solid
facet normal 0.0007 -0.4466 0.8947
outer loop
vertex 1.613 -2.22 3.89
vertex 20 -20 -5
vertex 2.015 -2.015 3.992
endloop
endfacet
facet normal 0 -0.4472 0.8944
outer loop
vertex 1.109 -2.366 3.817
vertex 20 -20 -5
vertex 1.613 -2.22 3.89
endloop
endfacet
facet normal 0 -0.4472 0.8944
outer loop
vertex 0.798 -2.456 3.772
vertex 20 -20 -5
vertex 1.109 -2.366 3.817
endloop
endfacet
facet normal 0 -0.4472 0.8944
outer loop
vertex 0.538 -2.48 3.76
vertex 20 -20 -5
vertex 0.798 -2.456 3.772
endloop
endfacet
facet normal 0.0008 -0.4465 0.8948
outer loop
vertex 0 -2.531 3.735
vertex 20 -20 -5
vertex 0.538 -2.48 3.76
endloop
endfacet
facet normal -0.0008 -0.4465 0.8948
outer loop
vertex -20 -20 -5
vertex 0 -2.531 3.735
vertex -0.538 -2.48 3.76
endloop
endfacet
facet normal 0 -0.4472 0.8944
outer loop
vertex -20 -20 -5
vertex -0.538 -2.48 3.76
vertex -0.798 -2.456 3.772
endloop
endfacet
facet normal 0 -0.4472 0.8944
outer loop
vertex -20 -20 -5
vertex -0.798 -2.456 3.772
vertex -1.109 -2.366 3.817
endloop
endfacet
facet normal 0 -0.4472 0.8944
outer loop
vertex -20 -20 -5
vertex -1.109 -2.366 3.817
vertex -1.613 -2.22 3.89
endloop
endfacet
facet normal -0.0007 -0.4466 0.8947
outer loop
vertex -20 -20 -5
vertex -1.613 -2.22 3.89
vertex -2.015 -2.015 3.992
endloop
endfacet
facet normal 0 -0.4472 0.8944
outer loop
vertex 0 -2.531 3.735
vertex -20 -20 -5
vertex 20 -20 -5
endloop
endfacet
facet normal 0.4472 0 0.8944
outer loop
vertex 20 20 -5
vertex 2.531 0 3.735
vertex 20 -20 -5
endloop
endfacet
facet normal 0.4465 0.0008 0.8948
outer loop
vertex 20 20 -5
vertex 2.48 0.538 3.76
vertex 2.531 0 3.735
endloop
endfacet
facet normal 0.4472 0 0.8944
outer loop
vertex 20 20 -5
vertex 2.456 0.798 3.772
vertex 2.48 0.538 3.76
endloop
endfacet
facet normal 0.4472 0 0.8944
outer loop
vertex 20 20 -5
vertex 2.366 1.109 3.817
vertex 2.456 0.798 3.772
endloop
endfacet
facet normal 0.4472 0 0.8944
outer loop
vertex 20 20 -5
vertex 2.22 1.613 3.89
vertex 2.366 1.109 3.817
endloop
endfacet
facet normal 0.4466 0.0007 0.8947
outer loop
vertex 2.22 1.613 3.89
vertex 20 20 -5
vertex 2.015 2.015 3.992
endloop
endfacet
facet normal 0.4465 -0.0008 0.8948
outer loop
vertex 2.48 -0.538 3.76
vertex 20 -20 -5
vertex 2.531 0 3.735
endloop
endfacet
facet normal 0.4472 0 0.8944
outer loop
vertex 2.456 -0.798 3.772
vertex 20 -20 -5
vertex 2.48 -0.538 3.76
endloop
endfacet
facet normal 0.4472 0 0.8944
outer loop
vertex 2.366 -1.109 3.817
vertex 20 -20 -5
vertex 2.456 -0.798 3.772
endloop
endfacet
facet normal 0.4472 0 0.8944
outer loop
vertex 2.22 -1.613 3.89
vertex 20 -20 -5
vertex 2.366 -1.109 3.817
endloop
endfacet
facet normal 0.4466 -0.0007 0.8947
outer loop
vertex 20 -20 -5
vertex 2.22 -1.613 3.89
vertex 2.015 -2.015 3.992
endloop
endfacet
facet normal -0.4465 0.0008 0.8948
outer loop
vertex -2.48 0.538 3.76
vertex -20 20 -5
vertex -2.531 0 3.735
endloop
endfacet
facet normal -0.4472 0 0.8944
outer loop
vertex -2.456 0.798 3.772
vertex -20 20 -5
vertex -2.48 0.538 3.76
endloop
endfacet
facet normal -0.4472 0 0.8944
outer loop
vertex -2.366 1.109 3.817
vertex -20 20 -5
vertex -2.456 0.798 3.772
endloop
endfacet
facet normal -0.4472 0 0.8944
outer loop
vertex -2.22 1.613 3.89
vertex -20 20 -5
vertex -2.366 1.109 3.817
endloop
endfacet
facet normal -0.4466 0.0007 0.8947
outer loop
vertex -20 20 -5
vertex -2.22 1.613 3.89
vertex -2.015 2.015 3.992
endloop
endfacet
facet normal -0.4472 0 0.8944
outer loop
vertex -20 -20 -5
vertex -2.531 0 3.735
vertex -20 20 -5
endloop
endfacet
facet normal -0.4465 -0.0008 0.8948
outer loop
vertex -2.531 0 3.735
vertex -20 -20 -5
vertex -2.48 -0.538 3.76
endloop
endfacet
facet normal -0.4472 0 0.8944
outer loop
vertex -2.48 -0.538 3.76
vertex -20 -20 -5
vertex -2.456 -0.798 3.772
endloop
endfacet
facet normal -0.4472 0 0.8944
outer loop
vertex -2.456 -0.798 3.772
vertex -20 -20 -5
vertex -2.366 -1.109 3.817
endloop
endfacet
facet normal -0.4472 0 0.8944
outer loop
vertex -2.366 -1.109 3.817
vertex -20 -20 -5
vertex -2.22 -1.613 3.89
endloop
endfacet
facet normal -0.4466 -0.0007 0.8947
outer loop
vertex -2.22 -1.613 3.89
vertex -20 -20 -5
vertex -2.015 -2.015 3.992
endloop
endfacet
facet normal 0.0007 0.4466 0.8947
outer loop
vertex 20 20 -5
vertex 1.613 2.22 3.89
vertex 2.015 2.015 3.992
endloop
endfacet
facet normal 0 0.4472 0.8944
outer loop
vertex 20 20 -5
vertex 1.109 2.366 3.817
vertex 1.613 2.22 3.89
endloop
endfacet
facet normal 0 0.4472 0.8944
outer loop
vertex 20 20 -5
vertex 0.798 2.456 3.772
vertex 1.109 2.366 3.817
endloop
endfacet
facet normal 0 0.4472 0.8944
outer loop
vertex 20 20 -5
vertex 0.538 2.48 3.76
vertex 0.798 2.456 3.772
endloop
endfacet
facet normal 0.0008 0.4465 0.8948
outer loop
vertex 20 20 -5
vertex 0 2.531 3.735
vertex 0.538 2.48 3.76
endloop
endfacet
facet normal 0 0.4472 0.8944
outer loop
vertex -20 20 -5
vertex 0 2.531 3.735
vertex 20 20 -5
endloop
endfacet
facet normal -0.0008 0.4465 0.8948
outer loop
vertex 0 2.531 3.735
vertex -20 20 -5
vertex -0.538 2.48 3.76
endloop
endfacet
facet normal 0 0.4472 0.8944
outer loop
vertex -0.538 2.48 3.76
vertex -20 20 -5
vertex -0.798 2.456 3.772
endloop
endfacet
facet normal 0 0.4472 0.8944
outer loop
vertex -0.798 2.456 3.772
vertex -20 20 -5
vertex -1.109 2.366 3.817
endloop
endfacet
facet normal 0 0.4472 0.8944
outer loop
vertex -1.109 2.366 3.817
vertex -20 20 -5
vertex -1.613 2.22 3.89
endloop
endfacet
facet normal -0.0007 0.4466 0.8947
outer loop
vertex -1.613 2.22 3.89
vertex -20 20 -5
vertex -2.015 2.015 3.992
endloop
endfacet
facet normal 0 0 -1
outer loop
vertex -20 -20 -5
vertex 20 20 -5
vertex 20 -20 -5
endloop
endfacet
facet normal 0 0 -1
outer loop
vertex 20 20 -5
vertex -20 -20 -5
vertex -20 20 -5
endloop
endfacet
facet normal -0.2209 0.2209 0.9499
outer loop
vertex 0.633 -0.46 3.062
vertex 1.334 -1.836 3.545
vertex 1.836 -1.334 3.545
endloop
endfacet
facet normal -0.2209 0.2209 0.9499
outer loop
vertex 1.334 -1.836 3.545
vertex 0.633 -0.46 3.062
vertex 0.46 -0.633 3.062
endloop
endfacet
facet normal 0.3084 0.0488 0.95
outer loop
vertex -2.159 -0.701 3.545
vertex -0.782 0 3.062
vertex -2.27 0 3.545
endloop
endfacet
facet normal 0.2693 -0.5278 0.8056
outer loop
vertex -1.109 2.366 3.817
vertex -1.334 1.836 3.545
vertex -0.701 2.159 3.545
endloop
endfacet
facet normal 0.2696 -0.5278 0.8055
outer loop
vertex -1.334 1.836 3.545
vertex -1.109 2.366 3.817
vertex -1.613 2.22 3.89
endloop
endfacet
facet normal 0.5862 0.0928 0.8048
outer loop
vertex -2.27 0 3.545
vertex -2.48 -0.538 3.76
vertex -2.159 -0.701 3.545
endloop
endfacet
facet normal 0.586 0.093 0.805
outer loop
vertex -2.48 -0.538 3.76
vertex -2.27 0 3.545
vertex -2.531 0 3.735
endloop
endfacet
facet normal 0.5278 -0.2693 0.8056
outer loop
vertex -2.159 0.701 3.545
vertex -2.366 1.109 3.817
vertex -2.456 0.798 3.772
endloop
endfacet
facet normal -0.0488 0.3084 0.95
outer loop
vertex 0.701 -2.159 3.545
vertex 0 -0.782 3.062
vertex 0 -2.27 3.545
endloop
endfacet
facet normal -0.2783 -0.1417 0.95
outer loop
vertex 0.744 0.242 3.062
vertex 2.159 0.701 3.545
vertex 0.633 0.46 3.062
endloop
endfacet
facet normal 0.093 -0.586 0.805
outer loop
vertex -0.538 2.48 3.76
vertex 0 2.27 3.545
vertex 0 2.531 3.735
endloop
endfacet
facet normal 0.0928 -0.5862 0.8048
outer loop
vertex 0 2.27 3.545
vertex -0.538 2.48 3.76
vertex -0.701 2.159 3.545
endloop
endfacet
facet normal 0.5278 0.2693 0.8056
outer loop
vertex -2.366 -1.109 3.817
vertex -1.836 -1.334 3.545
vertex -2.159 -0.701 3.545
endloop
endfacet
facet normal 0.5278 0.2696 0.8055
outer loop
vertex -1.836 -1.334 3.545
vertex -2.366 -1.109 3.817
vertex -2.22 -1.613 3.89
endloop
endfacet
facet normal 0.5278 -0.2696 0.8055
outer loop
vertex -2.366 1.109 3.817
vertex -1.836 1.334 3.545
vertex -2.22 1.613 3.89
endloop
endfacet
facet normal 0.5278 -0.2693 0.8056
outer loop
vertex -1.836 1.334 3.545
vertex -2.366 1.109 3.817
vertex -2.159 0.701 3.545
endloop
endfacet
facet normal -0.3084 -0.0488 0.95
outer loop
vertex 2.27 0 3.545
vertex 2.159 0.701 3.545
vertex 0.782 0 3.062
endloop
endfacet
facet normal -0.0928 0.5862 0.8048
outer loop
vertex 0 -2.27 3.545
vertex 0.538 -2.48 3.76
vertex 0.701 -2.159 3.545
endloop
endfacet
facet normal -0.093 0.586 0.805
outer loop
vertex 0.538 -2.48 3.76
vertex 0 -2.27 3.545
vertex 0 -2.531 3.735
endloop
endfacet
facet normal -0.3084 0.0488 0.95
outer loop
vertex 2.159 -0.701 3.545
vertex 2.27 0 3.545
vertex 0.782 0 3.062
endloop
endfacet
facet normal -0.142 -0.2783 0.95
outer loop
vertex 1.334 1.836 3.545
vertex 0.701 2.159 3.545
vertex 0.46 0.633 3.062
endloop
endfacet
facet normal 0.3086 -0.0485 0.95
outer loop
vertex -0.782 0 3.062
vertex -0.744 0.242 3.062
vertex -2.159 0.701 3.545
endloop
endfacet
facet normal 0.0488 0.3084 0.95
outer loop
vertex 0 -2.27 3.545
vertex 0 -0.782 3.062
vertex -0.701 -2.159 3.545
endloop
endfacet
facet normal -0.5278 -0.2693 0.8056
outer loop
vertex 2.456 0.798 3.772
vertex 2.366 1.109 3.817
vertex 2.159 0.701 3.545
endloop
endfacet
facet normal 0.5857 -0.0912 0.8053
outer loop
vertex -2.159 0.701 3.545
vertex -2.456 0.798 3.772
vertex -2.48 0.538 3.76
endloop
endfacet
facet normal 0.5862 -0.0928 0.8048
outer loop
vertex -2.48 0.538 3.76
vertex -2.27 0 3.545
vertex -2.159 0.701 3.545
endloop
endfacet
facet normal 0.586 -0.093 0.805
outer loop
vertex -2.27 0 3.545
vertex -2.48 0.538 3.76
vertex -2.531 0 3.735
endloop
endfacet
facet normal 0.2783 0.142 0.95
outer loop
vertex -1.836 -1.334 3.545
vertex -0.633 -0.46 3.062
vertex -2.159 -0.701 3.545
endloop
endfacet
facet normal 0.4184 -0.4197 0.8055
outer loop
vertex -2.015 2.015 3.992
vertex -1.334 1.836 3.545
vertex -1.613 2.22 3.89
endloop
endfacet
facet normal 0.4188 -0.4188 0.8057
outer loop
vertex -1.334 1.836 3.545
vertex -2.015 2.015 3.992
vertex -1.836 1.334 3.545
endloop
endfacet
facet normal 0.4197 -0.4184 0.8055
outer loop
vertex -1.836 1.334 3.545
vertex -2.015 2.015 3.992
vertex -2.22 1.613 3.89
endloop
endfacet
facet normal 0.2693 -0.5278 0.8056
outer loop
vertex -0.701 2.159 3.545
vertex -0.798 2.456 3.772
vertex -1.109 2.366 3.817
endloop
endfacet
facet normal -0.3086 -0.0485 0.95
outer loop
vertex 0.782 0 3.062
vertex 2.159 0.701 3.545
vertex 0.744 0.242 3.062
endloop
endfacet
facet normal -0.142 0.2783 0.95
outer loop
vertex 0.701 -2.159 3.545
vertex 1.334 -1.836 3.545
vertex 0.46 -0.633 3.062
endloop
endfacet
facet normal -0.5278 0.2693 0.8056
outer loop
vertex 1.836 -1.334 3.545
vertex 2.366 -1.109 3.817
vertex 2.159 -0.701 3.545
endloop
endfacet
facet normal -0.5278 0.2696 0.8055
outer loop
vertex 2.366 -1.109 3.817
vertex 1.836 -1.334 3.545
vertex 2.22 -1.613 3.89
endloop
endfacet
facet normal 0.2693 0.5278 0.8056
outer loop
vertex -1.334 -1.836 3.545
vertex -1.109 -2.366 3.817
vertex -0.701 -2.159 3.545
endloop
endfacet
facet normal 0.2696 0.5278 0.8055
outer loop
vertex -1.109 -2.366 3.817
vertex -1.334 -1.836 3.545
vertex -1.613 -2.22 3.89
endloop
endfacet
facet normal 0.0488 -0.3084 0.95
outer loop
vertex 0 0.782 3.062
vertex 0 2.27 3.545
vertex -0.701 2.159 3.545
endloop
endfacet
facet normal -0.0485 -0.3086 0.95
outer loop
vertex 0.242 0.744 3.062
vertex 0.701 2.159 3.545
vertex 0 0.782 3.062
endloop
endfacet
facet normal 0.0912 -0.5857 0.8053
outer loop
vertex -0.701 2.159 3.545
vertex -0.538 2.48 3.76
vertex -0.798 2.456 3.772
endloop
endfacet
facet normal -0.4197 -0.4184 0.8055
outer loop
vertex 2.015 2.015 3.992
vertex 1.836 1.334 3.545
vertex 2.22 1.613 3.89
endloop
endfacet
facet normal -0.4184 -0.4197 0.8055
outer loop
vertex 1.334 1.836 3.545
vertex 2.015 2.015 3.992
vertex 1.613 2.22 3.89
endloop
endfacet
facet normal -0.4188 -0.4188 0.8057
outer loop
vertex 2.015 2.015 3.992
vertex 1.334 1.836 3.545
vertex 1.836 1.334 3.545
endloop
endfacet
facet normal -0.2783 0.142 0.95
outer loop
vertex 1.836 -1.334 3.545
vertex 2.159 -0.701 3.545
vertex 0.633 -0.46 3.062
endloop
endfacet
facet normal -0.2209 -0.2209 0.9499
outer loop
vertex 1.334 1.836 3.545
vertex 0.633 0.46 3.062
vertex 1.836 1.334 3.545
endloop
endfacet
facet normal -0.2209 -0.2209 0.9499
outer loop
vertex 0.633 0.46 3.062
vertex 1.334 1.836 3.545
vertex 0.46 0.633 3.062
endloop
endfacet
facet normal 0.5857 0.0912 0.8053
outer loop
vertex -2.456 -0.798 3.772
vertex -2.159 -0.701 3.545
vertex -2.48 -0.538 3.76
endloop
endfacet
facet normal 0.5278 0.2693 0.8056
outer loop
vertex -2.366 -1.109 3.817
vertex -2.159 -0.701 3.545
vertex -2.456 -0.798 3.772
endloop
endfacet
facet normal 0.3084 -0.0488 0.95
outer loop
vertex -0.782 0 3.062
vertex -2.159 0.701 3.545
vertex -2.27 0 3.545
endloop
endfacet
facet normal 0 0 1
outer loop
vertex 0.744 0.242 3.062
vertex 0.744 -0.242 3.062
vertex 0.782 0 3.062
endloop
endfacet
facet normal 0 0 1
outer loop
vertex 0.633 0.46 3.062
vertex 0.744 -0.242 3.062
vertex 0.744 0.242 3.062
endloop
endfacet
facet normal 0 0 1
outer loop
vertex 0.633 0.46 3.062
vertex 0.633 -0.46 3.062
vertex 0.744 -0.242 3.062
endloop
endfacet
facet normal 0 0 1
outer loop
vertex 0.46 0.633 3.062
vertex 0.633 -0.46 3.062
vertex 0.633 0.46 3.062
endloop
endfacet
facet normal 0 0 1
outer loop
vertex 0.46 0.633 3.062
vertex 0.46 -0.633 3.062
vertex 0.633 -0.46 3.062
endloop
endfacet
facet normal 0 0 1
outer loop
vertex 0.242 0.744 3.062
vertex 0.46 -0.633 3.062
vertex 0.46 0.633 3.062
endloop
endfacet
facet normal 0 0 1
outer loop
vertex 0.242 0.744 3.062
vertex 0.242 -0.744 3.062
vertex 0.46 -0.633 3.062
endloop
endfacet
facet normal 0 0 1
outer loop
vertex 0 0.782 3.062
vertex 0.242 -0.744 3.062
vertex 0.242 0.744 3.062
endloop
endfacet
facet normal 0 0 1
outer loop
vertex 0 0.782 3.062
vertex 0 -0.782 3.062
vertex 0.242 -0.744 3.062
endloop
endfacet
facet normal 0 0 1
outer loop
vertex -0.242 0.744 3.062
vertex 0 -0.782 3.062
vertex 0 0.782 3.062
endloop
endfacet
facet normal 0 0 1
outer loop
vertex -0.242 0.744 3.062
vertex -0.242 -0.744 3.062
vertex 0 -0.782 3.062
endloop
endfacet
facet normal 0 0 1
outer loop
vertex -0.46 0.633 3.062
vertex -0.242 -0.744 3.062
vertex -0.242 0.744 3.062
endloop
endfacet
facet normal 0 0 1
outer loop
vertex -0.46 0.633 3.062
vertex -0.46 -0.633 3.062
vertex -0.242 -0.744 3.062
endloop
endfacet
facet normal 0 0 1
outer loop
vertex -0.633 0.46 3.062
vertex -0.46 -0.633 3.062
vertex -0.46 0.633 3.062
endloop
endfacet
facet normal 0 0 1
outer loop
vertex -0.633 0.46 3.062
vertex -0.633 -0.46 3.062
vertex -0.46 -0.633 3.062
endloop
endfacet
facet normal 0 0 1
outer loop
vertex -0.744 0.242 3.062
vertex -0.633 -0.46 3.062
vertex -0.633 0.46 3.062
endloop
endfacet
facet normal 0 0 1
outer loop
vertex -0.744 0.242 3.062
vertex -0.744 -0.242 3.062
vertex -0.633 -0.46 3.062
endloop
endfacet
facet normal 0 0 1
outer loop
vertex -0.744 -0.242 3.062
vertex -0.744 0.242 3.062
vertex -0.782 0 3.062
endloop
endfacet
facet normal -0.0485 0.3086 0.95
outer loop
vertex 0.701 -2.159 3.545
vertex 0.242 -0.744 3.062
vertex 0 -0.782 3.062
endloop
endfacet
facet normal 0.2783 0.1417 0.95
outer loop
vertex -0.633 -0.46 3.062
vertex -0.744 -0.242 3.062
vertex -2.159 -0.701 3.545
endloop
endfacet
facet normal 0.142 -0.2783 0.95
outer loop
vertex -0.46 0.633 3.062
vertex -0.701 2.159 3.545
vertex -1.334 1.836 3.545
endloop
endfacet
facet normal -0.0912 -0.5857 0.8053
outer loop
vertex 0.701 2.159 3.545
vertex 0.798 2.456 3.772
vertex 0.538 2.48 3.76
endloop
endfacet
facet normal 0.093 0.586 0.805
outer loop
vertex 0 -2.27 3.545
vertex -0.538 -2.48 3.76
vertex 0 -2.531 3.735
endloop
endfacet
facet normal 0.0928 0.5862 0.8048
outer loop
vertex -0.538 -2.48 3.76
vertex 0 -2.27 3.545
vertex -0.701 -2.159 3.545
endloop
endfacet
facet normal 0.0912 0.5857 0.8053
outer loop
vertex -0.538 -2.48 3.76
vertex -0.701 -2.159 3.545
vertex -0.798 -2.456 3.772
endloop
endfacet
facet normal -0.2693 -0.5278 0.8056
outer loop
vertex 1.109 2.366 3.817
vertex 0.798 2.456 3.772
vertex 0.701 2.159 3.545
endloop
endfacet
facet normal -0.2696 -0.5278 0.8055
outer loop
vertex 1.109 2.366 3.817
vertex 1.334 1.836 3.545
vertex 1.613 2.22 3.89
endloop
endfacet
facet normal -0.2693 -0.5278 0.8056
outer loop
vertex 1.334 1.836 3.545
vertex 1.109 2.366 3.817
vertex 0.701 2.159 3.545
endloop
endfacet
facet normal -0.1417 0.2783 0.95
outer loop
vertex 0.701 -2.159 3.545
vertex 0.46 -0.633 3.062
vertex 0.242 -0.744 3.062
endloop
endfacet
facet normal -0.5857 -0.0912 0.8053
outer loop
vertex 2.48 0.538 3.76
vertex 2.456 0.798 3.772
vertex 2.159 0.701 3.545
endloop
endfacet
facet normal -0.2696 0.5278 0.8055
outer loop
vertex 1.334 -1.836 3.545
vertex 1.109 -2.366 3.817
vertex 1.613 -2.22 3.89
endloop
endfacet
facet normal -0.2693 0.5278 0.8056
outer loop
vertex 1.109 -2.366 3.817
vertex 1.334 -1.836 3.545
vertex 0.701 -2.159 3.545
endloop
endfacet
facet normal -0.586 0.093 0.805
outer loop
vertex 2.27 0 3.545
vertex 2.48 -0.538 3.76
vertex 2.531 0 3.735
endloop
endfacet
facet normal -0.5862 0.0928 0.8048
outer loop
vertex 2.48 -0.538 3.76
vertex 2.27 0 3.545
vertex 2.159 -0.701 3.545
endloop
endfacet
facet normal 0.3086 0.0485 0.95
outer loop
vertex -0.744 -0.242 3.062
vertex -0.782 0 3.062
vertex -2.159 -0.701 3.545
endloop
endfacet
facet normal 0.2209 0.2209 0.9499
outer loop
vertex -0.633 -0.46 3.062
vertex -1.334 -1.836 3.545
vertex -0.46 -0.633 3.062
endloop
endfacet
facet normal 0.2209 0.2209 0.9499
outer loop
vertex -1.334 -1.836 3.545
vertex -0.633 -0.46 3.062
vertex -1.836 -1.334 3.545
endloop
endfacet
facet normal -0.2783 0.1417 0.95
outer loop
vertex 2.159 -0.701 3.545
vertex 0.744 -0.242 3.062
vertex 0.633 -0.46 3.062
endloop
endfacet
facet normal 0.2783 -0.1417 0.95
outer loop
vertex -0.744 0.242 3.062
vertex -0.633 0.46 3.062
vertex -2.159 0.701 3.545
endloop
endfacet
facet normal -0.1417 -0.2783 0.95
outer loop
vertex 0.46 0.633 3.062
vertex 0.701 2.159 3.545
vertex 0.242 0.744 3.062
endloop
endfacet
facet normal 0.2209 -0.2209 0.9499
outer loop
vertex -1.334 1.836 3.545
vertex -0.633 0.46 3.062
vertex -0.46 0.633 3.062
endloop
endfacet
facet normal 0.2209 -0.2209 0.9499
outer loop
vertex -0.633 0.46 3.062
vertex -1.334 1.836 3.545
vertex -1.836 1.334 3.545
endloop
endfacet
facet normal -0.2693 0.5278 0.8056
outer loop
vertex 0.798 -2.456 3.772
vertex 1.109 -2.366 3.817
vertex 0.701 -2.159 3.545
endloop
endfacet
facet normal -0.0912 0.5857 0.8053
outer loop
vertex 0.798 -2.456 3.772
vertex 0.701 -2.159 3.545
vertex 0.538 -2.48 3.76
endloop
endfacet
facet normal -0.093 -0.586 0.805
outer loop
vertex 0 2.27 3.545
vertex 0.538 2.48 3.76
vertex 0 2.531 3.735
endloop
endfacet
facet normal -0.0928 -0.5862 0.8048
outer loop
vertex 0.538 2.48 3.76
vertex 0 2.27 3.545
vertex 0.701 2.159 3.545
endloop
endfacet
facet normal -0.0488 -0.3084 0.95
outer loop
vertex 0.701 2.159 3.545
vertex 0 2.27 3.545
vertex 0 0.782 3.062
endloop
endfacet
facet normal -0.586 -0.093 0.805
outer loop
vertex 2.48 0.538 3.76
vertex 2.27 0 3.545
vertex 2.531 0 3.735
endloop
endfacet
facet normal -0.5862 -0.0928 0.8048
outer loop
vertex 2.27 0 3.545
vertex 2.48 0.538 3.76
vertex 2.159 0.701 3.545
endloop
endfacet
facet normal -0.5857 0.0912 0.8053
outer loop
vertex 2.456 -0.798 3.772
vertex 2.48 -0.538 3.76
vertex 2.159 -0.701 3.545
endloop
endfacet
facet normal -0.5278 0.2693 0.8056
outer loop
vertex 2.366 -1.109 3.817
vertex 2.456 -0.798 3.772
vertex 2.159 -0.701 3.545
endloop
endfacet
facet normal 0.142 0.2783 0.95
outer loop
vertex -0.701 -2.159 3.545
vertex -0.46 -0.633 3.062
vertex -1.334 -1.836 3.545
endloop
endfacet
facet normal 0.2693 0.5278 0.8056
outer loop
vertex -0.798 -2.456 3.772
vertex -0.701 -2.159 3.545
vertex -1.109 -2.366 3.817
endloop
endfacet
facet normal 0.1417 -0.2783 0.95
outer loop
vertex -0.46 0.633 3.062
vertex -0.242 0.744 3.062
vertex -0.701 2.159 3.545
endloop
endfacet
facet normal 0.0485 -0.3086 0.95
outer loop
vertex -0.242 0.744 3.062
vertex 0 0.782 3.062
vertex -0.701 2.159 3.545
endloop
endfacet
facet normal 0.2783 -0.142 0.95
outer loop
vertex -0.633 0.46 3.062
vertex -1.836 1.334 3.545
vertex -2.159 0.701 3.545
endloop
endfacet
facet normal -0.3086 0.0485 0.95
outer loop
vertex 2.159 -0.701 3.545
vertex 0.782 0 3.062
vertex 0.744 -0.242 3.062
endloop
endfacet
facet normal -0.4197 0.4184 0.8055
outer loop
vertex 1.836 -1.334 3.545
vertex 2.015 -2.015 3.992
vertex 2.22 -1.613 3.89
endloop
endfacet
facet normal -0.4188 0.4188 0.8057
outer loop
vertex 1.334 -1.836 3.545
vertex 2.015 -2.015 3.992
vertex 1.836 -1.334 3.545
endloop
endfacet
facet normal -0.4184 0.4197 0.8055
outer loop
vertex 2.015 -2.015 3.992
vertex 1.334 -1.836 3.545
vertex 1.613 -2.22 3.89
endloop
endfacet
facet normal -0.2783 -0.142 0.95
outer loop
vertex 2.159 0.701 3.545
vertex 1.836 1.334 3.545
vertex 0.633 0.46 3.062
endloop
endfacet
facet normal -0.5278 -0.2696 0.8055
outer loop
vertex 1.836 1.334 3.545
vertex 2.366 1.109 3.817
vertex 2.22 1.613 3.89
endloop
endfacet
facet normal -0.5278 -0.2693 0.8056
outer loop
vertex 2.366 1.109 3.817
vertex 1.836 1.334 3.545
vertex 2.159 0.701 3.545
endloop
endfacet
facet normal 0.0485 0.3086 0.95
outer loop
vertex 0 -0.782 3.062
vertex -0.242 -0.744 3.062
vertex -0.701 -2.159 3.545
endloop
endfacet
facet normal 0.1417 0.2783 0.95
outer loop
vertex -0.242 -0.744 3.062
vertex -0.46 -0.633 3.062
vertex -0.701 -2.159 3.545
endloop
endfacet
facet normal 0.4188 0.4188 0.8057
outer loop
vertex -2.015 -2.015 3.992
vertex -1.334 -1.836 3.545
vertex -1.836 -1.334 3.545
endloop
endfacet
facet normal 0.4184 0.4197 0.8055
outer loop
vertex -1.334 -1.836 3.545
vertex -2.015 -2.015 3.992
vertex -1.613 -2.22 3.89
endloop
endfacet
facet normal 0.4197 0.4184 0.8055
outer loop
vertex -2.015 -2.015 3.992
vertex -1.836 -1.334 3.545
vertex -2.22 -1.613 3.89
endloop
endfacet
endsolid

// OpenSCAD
$fn = 20;
use <libraries/partslib.scad>

height = 10;

difference()
{
    pyramid(side=40, height=height, square=true, centerHorizontal=true, centerVertical=true);
    translate([0, 0, height-2]) sphere(d=10);
}
